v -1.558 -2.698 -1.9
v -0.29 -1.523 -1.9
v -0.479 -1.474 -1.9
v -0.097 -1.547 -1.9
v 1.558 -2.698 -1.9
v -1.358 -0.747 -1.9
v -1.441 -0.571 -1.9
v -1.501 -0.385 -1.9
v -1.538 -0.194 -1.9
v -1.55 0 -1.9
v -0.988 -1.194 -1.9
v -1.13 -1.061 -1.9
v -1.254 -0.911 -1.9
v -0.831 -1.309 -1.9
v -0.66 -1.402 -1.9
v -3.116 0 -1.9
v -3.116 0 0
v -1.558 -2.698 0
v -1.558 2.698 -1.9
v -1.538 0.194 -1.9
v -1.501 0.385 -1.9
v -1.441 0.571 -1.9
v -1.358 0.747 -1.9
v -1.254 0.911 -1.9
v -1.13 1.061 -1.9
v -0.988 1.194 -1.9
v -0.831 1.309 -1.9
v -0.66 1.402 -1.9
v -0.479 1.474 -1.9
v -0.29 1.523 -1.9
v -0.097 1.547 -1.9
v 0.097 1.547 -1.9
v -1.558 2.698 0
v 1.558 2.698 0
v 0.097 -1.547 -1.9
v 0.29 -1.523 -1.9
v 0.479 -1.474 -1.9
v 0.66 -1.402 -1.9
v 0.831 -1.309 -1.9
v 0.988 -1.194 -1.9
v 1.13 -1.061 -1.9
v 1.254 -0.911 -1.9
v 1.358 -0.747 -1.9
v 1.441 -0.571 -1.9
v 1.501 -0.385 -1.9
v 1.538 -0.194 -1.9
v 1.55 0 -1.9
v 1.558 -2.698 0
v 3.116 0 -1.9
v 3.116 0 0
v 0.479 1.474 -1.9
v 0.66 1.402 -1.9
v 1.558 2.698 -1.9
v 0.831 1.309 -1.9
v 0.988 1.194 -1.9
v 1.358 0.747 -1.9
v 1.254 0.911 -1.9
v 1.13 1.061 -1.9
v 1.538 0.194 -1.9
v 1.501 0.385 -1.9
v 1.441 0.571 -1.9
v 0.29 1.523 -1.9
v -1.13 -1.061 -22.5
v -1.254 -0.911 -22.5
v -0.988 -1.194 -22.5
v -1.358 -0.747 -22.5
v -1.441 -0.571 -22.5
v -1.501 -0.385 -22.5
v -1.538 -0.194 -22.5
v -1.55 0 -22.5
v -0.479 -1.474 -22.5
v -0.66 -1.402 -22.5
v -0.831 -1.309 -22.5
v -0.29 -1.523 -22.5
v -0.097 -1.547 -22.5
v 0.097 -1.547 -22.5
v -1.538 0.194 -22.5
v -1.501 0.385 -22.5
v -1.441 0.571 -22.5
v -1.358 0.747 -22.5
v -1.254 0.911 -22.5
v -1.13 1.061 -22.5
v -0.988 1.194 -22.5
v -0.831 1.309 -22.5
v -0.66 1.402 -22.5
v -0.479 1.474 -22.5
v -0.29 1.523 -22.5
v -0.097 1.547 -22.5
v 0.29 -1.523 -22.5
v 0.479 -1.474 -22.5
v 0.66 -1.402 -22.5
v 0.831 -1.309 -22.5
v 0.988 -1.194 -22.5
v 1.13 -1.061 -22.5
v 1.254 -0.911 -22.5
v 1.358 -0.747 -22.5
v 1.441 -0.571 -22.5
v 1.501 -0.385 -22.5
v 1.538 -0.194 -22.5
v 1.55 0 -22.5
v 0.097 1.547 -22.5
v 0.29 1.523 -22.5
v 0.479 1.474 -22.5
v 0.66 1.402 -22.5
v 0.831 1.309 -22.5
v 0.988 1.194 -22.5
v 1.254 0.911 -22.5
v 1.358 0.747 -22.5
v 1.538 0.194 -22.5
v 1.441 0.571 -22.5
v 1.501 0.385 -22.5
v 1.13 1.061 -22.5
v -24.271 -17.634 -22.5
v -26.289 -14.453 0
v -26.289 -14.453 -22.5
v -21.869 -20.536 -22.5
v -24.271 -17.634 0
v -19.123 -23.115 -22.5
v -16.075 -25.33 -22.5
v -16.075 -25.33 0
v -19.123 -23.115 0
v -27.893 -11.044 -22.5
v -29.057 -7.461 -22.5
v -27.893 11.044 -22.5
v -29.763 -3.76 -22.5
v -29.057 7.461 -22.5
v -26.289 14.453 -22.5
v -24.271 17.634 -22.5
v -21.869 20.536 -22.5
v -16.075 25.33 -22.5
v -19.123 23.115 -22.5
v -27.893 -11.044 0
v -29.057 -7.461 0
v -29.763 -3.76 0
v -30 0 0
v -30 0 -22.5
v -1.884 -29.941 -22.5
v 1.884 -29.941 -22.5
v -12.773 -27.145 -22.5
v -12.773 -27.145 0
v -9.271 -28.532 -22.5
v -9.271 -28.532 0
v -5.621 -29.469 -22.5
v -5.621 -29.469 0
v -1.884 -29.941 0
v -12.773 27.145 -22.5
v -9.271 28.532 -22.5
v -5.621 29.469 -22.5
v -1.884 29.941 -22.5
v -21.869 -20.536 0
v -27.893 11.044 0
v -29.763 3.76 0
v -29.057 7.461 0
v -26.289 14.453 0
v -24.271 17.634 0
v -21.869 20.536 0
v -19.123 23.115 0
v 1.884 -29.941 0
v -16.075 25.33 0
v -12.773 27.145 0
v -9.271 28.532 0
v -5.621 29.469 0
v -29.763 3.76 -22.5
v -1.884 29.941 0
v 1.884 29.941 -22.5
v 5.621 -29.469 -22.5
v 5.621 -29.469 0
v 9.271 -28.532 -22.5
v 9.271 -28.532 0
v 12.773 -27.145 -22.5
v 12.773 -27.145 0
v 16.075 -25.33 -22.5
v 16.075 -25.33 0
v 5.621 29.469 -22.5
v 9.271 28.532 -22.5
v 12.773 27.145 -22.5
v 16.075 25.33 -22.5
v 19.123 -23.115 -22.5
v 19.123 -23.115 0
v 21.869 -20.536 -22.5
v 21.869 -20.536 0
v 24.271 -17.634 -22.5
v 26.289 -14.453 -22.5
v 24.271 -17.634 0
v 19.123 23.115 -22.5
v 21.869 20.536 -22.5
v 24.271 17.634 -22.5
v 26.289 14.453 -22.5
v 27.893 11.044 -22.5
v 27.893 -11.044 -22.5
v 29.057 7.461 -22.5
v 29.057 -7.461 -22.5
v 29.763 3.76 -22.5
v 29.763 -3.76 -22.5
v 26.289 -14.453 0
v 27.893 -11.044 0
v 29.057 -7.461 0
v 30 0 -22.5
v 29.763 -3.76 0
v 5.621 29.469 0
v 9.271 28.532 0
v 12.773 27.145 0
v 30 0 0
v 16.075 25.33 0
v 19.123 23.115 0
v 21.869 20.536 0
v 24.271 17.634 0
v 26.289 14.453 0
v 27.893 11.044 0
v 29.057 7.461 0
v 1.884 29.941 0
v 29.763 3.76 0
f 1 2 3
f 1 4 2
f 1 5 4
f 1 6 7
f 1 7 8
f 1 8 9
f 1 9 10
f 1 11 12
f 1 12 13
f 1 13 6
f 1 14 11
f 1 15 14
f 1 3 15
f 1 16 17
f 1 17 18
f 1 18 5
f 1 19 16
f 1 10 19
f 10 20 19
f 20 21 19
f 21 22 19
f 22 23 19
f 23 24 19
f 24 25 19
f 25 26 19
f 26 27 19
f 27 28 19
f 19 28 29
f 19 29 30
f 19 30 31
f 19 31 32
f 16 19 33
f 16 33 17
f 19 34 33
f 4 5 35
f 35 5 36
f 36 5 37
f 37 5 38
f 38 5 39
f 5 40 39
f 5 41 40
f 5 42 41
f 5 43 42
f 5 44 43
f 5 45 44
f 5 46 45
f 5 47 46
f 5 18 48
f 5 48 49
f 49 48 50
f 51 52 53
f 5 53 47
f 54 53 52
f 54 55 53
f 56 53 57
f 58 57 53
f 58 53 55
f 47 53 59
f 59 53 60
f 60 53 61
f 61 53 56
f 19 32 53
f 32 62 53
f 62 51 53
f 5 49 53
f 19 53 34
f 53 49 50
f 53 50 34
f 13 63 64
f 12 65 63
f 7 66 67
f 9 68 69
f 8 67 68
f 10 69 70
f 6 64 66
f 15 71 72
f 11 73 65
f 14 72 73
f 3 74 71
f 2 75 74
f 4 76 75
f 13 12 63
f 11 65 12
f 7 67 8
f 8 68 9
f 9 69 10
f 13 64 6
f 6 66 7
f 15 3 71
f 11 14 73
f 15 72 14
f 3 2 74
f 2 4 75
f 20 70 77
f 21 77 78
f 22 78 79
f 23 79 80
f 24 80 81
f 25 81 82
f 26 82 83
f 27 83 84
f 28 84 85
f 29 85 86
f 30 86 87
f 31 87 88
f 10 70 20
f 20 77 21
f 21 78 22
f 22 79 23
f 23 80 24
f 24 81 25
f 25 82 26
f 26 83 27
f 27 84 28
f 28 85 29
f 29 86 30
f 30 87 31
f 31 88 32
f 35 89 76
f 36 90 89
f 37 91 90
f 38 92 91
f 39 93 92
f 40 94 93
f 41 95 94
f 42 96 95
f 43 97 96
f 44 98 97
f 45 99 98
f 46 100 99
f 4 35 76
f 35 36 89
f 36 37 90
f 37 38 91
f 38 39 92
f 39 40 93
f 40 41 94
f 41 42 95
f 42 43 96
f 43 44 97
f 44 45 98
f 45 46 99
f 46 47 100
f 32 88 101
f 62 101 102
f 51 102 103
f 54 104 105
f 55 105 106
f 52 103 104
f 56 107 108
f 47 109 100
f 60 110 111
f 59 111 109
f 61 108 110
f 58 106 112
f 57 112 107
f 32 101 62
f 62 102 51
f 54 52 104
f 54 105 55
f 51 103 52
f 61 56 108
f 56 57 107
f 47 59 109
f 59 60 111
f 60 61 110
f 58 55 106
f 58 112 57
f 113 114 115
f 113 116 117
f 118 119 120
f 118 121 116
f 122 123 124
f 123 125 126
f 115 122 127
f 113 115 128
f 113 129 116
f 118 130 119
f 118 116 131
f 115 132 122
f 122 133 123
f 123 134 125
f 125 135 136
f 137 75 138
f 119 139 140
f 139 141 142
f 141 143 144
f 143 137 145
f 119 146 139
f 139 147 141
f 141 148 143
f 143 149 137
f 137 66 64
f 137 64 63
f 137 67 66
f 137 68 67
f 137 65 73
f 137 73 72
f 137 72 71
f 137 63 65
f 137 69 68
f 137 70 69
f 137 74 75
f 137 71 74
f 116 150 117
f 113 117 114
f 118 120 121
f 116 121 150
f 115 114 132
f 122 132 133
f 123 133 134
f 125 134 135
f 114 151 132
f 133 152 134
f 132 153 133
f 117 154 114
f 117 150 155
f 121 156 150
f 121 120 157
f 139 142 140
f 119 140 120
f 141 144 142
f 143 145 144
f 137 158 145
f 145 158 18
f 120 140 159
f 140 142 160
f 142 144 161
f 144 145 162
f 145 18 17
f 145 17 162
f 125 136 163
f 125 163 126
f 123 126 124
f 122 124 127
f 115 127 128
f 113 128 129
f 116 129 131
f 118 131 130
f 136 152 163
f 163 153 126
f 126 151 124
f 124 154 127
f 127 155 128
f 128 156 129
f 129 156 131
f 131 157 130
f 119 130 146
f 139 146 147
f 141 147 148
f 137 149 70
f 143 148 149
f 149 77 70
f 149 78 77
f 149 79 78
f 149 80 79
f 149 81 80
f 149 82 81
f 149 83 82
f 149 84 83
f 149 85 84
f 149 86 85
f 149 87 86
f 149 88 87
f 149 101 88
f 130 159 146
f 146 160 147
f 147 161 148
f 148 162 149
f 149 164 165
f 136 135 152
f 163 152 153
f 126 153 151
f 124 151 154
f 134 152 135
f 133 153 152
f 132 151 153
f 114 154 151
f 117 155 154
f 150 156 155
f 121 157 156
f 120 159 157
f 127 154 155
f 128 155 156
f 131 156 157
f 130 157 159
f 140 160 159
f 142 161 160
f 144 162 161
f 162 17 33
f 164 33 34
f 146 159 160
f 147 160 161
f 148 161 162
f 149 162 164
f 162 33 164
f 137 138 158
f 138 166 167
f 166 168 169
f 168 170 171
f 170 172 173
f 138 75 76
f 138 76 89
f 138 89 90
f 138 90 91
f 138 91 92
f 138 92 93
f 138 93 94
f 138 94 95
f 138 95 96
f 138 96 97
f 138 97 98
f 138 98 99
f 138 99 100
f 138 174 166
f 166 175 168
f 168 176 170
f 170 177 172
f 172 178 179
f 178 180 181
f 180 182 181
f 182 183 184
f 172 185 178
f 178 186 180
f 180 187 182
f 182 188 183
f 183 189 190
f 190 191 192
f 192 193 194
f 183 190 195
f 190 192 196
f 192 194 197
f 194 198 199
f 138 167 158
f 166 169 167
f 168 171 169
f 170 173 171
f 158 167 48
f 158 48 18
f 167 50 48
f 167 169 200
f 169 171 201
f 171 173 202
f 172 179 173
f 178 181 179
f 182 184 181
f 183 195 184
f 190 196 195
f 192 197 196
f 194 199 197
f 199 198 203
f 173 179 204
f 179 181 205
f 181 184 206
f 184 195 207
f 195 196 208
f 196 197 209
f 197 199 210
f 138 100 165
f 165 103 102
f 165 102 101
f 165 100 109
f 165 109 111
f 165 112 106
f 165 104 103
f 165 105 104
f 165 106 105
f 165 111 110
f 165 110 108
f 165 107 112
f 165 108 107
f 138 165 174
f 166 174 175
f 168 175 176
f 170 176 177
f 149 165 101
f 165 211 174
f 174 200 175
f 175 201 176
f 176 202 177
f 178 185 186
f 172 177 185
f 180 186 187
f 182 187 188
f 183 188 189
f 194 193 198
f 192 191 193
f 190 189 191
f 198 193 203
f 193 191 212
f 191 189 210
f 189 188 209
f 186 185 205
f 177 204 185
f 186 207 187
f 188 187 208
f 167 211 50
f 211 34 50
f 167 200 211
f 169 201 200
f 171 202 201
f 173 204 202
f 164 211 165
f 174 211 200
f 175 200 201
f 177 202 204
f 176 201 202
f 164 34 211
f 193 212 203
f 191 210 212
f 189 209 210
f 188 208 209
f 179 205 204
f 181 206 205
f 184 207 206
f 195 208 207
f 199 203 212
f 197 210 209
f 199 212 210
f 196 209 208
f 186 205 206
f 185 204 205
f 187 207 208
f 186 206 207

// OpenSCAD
$fn = 50;

difference() {
	union() {
		translate(v = [0, 0, -22.5]) {
			cylinder(h = 22.5, r = 30.0);
		}
	}
	union() {
		translate(v = [0, 0, 0]) {
			rotate(a = [0, 0, 0]) {
				difference() {
					union() {
						translate(v = [0, 0, -1.9]) {
							linear_extrude(height = 1.9) {
								polygon(points = [[3.1158, 0.0], [1.5579000000000005, 2.698361953111554], [-1.5578999999999994, 2.6983619531115544], [-3.1158, 3.815754496783323e-16], [-1.5579000000000014, -2.6983619531115535], [1.557899999999998, -2.6983619531115552]]);
							}
						}
					}
					union();
				}
			}
		}
		#translate(v = [0, 0, -100.0]) {
			cylinder(h = 200, r = 1.55);
		}
	}
}
